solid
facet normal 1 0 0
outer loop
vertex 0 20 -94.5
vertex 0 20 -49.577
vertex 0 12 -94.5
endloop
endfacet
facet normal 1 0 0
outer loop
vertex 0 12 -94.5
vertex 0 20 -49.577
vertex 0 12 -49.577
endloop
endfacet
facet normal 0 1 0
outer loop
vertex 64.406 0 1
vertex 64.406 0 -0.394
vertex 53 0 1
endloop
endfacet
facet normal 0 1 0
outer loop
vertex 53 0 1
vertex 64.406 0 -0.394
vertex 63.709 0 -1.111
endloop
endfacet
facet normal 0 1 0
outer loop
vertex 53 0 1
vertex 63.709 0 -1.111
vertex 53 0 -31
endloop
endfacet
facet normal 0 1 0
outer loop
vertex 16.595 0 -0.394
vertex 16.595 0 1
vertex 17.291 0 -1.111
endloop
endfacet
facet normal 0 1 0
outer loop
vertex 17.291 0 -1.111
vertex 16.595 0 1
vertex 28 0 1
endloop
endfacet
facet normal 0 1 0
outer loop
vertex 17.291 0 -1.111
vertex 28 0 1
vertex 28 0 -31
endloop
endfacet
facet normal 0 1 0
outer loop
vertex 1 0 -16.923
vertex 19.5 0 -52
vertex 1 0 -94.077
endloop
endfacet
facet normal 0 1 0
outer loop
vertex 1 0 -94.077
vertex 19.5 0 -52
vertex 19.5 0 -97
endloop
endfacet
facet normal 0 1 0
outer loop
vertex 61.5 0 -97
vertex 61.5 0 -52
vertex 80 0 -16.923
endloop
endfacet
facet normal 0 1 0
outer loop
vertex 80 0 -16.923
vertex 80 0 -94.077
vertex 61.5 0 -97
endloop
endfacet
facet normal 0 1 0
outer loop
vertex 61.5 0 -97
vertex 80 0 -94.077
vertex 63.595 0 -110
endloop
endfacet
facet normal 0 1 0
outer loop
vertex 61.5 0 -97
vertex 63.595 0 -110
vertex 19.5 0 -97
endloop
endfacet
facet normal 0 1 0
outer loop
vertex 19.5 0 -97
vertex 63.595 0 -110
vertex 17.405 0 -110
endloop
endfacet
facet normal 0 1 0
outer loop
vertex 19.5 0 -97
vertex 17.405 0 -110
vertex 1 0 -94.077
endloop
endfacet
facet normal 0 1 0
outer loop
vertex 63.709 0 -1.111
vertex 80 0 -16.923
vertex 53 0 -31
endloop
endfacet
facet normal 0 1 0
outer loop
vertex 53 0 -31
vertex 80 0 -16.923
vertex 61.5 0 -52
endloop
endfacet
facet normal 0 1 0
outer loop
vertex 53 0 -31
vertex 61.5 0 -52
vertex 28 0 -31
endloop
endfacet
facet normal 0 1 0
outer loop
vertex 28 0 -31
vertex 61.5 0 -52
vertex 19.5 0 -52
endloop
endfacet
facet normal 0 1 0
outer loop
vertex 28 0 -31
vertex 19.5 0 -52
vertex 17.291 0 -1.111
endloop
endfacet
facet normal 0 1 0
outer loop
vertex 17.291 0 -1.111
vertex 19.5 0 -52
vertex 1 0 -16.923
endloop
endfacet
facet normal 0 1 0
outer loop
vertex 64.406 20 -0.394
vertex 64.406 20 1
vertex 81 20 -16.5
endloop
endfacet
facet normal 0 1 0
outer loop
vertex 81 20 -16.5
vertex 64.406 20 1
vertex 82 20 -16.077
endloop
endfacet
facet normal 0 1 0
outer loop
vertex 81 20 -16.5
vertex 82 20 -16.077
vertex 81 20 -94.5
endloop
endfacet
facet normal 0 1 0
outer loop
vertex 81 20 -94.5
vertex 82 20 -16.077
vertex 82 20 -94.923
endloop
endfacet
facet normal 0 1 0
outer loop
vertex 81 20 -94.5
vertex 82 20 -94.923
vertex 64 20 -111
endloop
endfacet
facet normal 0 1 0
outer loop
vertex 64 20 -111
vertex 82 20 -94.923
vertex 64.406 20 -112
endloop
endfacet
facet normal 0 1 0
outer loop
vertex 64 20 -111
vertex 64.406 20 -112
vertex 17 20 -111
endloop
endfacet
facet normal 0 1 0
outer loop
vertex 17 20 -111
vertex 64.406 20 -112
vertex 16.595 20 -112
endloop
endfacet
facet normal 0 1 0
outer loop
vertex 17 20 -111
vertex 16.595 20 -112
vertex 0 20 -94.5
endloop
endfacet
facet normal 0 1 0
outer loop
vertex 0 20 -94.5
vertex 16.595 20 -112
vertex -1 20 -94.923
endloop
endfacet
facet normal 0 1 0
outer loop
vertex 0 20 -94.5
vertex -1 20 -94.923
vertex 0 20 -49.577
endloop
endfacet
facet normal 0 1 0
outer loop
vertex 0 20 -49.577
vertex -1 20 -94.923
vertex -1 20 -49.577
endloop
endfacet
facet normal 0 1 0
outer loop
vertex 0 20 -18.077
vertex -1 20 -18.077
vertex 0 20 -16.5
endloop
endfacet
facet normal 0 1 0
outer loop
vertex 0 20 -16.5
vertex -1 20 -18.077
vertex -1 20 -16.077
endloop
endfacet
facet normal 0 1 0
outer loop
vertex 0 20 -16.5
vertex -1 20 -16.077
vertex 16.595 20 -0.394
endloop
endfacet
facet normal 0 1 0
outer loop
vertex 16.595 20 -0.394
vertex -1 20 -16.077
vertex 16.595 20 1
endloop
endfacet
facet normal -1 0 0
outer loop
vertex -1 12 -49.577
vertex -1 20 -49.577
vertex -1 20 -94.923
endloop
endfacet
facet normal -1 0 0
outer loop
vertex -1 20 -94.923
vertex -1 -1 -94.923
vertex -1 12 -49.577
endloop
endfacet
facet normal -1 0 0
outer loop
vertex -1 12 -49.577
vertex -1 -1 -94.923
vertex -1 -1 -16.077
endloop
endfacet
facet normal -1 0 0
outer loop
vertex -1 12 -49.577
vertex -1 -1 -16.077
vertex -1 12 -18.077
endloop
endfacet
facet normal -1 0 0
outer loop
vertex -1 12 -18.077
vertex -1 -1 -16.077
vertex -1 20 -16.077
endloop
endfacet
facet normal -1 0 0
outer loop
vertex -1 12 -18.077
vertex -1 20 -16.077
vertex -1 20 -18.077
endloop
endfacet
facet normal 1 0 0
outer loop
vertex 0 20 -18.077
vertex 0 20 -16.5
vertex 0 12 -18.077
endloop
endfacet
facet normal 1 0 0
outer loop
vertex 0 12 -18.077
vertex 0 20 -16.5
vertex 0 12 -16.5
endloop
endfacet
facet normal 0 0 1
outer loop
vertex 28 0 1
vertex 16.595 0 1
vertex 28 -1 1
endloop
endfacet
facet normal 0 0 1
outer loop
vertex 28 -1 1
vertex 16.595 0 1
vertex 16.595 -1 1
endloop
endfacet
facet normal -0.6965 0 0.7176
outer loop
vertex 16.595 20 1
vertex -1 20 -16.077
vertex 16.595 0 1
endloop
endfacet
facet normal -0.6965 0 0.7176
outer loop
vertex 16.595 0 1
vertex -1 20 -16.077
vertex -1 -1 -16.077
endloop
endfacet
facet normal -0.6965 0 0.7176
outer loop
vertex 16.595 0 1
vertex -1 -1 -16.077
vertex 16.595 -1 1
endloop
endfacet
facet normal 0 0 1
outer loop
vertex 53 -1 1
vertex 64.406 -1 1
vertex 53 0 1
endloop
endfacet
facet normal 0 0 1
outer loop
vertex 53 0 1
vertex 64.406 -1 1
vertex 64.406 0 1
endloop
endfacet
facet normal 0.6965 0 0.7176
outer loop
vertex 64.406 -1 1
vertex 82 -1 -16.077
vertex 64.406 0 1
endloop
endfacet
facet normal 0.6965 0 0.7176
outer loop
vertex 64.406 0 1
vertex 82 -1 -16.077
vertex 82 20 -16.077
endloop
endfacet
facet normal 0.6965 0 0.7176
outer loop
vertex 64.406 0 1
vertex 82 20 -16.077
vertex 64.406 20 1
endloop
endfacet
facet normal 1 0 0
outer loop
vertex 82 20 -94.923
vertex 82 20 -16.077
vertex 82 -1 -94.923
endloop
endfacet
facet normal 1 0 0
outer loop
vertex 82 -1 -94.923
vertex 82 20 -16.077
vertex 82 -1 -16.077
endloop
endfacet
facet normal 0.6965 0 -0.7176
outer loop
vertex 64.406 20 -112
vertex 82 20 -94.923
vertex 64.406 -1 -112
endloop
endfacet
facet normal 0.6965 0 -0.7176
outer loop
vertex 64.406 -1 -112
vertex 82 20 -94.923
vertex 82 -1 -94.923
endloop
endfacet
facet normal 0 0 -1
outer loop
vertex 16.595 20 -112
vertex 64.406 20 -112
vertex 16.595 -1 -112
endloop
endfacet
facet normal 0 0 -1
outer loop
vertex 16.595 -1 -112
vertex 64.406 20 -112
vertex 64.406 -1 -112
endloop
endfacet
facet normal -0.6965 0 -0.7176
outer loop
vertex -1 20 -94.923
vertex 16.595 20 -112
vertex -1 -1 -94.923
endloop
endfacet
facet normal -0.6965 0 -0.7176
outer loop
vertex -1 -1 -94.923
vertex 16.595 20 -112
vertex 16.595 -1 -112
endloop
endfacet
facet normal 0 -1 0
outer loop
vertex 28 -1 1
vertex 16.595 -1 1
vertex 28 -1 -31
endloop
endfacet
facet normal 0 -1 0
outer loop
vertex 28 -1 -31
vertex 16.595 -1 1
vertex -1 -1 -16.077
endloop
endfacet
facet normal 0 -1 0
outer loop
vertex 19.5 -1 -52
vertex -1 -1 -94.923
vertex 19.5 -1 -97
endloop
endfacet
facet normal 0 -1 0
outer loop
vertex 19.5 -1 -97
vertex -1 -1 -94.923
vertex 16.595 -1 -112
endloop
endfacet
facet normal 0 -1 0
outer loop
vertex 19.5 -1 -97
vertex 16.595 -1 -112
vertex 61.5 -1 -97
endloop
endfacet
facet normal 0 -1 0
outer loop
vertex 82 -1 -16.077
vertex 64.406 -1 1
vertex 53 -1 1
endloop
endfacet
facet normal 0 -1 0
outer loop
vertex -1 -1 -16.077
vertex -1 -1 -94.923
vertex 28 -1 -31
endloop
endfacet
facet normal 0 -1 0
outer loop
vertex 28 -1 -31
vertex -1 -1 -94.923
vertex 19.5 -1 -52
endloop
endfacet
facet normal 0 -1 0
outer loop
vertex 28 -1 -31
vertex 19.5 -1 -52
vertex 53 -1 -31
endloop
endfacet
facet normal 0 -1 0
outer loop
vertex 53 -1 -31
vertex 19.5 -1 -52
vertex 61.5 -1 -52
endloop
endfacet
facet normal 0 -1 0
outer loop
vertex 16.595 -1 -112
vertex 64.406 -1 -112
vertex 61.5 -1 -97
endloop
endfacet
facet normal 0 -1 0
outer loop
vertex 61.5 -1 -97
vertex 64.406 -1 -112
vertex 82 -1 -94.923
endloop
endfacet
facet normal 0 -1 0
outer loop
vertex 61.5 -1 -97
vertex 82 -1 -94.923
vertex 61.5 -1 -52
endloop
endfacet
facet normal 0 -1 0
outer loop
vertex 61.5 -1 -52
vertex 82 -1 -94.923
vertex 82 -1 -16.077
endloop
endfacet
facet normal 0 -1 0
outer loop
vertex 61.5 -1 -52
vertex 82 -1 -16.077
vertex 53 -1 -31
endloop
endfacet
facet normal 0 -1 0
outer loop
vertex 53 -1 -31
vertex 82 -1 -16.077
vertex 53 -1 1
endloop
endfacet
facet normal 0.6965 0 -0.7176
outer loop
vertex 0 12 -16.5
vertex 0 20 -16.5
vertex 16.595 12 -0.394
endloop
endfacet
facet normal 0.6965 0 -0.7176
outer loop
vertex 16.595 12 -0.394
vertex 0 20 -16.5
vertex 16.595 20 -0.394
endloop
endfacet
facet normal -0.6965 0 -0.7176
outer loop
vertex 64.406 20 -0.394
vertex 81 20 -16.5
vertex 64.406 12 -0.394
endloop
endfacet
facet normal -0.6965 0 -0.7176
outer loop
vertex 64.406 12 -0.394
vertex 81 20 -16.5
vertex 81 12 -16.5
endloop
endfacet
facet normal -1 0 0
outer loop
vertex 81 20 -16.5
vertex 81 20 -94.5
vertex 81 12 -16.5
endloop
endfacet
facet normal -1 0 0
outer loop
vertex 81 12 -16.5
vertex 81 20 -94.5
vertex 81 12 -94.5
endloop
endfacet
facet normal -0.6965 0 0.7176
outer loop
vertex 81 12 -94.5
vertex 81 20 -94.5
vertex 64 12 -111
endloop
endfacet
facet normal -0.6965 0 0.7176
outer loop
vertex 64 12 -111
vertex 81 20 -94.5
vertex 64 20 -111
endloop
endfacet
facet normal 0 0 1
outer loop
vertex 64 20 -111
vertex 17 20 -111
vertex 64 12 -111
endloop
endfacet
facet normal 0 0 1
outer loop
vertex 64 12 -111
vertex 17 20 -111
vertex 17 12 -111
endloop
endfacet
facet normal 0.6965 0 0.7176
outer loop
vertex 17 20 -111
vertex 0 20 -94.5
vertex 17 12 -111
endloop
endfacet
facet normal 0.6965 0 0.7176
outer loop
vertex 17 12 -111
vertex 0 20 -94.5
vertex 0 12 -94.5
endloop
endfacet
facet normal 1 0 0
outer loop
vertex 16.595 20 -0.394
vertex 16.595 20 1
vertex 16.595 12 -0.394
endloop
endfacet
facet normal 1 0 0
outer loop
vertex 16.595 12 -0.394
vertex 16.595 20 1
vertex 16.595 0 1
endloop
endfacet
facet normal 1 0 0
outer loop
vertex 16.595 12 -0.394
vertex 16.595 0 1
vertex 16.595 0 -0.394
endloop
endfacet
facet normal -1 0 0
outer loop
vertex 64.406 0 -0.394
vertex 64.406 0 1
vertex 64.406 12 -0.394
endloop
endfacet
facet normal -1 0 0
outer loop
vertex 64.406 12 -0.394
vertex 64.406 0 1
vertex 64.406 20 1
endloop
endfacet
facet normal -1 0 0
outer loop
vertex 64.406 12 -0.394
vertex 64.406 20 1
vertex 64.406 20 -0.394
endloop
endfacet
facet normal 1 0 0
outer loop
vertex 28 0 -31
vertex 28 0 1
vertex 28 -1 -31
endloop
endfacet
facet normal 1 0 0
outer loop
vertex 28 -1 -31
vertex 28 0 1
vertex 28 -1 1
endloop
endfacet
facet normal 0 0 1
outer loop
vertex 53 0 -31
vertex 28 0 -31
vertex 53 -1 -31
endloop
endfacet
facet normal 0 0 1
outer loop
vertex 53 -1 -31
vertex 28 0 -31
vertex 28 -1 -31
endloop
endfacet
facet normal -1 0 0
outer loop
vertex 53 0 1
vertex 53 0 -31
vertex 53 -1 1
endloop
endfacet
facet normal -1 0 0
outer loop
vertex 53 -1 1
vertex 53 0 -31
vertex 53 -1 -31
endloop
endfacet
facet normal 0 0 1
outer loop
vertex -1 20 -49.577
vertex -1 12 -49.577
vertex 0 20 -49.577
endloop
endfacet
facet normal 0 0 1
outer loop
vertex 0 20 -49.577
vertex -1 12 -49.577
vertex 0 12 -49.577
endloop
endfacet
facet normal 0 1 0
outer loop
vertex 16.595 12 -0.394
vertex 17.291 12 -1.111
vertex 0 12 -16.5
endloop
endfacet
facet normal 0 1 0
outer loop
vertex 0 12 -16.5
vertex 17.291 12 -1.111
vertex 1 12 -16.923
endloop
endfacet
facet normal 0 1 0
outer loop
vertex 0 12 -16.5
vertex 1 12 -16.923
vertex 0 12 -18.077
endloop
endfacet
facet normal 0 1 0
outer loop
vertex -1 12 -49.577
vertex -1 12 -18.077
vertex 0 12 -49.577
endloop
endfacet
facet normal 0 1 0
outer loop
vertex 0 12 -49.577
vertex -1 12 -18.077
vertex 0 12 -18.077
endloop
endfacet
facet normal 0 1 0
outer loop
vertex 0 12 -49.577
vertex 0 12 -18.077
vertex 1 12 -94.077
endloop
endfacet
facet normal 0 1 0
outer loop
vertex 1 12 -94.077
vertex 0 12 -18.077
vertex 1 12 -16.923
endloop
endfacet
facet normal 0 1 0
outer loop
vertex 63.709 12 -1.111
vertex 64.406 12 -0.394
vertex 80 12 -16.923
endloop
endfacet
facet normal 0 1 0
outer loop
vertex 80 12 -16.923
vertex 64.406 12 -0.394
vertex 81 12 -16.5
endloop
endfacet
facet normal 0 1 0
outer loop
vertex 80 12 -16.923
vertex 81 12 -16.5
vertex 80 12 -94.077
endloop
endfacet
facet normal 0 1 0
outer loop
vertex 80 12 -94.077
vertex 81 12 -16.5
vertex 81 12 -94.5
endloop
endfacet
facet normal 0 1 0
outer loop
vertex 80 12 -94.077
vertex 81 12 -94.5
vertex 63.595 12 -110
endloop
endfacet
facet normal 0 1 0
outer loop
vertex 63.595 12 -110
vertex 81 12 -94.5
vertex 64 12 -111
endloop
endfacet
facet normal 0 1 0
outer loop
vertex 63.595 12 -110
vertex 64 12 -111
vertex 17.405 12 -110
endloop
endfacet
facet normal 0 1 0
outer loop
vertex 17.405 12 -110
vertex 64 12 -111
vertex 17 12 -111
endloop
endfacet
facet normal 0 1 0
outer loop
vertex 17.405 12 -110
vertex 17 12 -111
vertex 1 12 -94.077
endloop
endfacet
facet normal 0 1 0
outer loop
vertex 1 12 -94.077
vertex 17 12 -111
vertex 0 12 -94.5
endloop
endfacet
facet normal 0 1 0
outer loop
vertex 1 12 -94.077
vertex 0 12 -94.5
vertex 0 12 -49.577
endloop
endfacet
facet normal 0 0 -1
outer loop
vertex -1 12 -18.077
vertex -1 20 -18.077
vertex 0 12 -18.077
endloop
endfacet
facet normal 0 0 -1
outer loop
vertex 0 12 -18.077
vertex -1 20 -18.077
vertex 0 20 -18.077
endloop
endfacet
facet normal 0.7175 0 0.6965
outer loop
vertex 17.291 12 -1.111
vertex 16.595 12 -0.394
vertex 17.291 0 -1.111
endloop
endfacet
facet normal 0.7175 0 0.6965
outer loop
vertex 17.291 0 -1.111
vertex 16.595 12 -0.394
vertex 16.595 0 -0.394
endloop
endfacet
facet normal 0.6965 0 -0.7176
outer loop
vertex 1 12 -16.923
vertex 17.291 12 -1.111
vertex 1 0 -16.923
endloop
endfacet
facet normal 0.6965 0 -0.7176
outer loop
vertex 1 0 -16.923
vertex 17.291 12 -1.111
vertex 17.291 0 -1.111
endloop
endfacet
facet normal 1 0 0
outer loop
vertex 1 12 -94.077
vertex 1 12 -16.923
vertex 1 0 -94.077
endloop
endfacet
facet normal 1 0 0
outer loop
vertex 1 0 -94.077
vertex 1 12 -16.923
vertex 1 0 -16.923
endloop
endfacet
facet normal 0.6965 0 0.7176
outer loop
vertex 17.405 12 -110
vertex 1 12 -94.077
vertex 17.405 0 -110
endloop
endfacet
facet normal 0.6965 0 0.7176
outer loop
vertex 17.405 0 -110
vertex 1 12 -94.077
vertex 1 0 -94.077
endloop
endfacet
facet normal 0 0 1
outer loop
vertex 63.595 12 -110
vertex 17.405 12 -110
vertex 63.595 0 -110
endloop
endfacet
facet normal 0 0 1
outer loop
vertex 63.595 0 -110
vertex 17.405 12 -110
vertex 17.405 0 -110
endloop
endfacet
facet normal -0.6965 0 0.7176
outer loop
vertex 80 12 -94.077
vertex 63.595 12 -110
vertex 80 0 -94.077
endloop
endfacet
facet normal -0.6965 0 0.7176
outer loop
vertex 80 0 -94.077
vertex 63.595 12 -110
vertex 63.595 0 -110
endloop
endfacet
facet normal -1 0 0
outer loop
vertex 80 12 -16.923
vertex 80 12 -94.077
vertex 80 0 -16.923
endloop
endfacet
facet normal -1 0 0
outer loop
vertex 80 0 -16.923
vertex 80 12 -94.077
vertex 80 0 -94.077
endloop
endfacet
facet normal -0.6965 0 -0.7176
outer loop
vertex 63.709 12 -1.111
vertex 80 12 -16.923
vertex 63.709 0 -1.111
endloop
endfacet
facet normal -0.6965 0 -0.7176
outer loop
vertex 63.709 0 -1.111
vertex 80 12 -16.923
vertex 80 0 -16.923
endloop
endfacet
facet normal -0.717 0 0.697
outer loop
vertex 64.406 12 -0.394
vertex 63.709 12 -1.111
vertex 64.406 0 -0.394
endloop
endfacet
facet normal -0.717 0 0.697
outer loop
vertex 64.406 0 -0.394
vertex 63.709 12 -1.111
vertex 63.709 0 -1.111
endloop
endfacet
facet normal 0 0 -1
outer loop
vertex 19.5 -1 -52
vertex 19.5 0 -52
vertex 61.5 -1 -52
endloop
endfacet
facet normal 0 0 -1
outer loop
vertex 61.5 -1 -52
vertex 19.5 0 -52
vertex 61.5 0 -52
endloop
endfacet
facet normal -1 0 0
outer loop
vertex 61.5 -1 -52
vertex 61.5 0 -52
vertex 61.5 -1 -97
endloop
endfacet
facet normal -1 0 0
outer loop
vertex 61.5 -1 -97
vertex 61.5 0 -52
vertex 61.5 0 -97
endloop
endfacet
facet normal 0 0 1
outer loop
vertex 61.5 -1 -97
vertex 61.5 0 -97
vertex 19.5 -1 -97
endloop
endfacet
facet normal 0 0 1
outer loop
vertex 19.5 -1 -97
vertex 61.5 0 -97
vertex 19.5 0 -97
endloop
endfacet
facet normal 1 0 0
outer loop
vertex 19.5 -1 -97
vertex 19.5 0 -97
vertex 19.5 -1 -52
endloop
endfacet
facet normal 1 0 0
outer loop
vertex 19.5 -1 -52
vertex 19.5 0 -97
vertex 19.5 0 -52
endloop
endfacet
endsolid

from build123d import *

# Parameters (mm, degrees)
SALIENTE_EXTRUIR1_DEPTH = 20
VACIADO1_T              = 1
CORTAR_EXTRUIR1_REACH   = 143.043
CROQUIS2_W              = 47.810995816
CROQUIS2_H              = 20
CORTAR_EXTRUIR7_REACH   = 142.243
CROQUIS10_W             = 25
CROQUIS10_H             = 32
CORTAR_EXTRUIR8_REACH   = 142.83
CROQUIS11_W             = 31.5
CROQUIS11_H             = 8
SALIENTE_EXTRUIR2_DEPTH = 12
CORTAR_EXTRUIR9_REACH   = 142.389
CROQUIS13_W             = 42
CROQUIS13_H             = 45


with BuildPart() as part:
    # Croquis1 → Saliente-Extruir1 (new body)
    with BuildSketch(Plane(origin=(0, 0, 0), x_dir=(1, 0, 0), z_dir=(0, 1, 0))):
        Polygon((0, 16.5), (17, 0), (64, 0), (81, 16.5), (81, 94.5), (64, 111), (17, 111), (0, 94.5), align=None)
    extrude(amount=SALIENTE_EXTRUIR1_DEPTH)

    # Vaciado1
    vaciado1_openings = [part.faces().sort_by_distance(p)[0] for p in [
        (40.5, 20, -55.5),
    ]]
    offset(amount=VACIADO1_T, openings=vaciado1_openings, kind=Kind.INTERSECTION)

    # Croquis2 → Cortar-Extruir1 (cut, up to next)
    with BuildSketch(Plane.XY.offset(1), mode=Mode.PRIVATE) as cortar_extruir1_sk1:
        with Locations((40.5, 10)):
            Rectangle(CROQUIS2_W, CROQUIS2_H)
    cortar_extruir1_tool1 = extrude(cortar_extruir1_sk1.sketch, amount=-CORTAR_EXTRUIR1_REACH, mode=Mode.PRIVATE) & part.part
    add(cortar_extruir1_tool1.solids().sort_by_distance((40.5, 10, 1))[0], mode=Mode.SUBTRACT)

    # Croquis10 → Cortar-Extruir7 (cut, up to next)
    with BuildSketch(Plane(origin=(0, 0, 0), x_dir=(1, 0, 0), z_dir=(0, 1, 0)), mode=Mode.PRIVATE) as cortar_extruir7_sk1:
        with Locations((40.5, 15)):
            Rectangle(CROQUIS10_W, CROQUIS10_H)
    cortar_extruir7_tool1 = extrude(cortar_extruir7_sk1.sketch, amount=-CORTAR_EXTRUIR7_REACH, mode=Mode.PRIVATE) & part.part
    add(cortar_extruir7_tool1.solids().sort_by_distance((40.5, 0, -15))[0], mode=Mode.SUBTRACT)

    # Croquis11 → Cortar-Extruir8 (cut, up to next)
    with BuildSketch(Plane.ZY.offset(1), mode=Mode.PRIVATE) as cortar_extruir8_sk1:
        with Locations((-33.827016736, 16)):
            Rectangle(CROQUIS11_W, CROQUIS11_H)
    cortar_extruir8_tool1 = extrude(cortar_extruir8_sk1.sketch, amount=-CORTAR_EXTRUIR8_REACH, mode=Mode.PRIVATE) & part.part
    add(cortar_extruir8_tool1.solids().sort_by_distance((-1, 16, -33.827017))[0], mode=Mode.SUBTRACT)

    # Croquis12 → Saliente-Extruir2 (add)
    with BuildSketch(Plane(origin=(0, 0, 0), x_dir=(1, 0, 0), z_dir=(0, 1, 0))):
        Polygon((16.594502092, 0.393571499), (17.290977469, 1.111152191), (1, 16.922983264), (1, 94.077016736), (17.405497908, 110), (63.594502092, 110), (80, 94.077016736), (80, 16.922983264), (63.709022531, 1.111152191), (64.405497908, 0.393571499), (81, 16.5), (81, 94.5), (64, 111), (17, 111), (0, 94.5), (0, 16.5), align=None)
    extrude(amount=SALIENTE_EXTRUIR2_DEPTH)

    # Croquis13 → Cortar-Extruir9 (cut, up to next)
    with BuildSketch(Plane.XZ.offset(1), mode=Mode.PRIVATE) as cortar_extruir9_sk1:
        with Locations((40.5, -74.5)):
            Rectangle(CROQUIS13_W, CROQUIS13_H)
    cortar_extruir9_tool1 = extrude(cortar_extruir9_sk1.sketch, amount=-CORTAR_EXTRUIR9_REACH, mode=Mode.PRIVATE) & part.part
    add(cortar_extruir9_tool1.solids().sort_by_distance((40.5, -1, -74.5))[0], mode=Mode.SUBTRACT)


solid = part.part
